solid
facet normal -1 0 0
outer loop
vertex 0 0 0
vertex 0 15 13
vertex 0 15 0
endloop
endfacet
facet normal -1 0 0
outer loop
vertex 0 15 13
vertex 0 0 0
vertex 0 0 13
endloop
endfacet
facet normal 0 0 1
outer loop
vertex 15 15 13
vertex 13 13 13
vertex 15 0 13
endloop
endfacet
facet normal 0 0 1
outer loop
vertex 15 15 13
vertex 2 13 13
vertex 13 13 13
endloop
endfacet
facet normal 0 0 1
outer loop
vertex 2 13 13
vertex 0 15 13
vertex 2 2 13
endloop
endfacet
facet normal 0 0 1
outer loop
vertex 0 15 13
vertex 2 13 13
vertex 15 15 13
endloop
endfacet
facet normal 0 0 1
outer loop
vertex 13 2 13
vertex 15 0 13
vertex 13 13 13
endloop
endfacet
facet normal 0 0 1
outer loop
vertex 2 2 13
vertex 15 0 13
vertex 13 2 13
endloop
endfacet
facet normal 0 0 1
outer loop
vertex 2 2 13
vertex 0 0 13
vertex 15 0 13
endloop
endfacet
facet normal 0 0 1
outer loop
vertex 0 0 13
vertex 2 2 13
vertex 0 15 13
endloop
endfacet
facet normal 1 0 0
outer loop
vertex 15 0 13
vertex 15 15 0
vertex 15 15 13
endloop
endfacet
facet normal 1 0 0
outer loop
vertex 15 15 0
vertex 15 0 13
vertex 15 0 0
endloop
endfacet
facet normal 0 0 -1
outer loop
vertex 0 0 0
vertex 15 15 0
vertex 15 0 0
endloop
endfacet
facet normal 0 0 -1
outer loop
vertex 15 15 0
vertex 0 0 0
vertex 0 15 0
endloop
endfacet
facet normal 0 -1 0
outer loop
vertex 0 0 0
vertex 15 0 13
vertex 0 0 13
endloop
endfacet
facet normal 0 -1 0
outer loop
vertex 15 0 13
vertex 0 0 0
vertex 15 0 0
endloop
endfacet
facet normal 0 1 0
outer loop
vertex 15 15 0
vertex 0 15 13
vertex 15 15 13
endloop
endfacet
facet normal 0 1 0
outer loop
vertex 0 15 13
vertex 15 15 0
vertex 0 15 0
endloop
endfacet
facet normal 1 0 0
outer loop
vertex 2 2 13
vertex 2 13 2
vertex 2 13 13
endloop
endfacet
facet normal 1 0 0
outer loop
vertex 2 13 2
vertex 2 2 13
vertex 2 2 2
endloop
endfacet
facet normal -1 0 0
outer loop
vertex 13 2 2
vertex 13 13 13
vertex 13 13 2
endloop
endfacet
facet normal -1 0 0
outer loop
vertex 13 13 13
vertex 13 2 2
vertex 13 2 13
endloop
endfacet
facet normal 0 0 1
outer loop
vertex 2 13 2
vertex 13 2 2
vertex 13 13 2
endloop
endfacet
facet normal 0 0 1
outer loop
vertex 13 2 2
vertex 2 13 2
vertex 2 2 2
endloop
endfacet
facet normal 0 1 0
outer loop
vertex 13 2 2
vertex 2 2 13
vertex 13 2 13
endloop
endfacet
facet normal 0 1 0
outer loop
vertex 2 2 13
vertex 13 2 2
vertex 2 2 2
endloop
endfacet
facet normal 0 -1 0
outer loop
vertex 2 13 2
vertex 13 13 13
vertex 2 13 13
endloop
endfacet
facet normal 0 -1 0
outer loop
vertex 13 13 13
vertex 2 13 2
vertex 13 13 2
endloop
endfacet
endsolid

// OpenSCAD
BackLed();

module BackLed(){
    
    // Main
    color("red")
    difference() {
        translate([0,0,0])
        cube([15,15,13]);
        translate([2,2,2])
        cube([11,11,11]);
    }
}
